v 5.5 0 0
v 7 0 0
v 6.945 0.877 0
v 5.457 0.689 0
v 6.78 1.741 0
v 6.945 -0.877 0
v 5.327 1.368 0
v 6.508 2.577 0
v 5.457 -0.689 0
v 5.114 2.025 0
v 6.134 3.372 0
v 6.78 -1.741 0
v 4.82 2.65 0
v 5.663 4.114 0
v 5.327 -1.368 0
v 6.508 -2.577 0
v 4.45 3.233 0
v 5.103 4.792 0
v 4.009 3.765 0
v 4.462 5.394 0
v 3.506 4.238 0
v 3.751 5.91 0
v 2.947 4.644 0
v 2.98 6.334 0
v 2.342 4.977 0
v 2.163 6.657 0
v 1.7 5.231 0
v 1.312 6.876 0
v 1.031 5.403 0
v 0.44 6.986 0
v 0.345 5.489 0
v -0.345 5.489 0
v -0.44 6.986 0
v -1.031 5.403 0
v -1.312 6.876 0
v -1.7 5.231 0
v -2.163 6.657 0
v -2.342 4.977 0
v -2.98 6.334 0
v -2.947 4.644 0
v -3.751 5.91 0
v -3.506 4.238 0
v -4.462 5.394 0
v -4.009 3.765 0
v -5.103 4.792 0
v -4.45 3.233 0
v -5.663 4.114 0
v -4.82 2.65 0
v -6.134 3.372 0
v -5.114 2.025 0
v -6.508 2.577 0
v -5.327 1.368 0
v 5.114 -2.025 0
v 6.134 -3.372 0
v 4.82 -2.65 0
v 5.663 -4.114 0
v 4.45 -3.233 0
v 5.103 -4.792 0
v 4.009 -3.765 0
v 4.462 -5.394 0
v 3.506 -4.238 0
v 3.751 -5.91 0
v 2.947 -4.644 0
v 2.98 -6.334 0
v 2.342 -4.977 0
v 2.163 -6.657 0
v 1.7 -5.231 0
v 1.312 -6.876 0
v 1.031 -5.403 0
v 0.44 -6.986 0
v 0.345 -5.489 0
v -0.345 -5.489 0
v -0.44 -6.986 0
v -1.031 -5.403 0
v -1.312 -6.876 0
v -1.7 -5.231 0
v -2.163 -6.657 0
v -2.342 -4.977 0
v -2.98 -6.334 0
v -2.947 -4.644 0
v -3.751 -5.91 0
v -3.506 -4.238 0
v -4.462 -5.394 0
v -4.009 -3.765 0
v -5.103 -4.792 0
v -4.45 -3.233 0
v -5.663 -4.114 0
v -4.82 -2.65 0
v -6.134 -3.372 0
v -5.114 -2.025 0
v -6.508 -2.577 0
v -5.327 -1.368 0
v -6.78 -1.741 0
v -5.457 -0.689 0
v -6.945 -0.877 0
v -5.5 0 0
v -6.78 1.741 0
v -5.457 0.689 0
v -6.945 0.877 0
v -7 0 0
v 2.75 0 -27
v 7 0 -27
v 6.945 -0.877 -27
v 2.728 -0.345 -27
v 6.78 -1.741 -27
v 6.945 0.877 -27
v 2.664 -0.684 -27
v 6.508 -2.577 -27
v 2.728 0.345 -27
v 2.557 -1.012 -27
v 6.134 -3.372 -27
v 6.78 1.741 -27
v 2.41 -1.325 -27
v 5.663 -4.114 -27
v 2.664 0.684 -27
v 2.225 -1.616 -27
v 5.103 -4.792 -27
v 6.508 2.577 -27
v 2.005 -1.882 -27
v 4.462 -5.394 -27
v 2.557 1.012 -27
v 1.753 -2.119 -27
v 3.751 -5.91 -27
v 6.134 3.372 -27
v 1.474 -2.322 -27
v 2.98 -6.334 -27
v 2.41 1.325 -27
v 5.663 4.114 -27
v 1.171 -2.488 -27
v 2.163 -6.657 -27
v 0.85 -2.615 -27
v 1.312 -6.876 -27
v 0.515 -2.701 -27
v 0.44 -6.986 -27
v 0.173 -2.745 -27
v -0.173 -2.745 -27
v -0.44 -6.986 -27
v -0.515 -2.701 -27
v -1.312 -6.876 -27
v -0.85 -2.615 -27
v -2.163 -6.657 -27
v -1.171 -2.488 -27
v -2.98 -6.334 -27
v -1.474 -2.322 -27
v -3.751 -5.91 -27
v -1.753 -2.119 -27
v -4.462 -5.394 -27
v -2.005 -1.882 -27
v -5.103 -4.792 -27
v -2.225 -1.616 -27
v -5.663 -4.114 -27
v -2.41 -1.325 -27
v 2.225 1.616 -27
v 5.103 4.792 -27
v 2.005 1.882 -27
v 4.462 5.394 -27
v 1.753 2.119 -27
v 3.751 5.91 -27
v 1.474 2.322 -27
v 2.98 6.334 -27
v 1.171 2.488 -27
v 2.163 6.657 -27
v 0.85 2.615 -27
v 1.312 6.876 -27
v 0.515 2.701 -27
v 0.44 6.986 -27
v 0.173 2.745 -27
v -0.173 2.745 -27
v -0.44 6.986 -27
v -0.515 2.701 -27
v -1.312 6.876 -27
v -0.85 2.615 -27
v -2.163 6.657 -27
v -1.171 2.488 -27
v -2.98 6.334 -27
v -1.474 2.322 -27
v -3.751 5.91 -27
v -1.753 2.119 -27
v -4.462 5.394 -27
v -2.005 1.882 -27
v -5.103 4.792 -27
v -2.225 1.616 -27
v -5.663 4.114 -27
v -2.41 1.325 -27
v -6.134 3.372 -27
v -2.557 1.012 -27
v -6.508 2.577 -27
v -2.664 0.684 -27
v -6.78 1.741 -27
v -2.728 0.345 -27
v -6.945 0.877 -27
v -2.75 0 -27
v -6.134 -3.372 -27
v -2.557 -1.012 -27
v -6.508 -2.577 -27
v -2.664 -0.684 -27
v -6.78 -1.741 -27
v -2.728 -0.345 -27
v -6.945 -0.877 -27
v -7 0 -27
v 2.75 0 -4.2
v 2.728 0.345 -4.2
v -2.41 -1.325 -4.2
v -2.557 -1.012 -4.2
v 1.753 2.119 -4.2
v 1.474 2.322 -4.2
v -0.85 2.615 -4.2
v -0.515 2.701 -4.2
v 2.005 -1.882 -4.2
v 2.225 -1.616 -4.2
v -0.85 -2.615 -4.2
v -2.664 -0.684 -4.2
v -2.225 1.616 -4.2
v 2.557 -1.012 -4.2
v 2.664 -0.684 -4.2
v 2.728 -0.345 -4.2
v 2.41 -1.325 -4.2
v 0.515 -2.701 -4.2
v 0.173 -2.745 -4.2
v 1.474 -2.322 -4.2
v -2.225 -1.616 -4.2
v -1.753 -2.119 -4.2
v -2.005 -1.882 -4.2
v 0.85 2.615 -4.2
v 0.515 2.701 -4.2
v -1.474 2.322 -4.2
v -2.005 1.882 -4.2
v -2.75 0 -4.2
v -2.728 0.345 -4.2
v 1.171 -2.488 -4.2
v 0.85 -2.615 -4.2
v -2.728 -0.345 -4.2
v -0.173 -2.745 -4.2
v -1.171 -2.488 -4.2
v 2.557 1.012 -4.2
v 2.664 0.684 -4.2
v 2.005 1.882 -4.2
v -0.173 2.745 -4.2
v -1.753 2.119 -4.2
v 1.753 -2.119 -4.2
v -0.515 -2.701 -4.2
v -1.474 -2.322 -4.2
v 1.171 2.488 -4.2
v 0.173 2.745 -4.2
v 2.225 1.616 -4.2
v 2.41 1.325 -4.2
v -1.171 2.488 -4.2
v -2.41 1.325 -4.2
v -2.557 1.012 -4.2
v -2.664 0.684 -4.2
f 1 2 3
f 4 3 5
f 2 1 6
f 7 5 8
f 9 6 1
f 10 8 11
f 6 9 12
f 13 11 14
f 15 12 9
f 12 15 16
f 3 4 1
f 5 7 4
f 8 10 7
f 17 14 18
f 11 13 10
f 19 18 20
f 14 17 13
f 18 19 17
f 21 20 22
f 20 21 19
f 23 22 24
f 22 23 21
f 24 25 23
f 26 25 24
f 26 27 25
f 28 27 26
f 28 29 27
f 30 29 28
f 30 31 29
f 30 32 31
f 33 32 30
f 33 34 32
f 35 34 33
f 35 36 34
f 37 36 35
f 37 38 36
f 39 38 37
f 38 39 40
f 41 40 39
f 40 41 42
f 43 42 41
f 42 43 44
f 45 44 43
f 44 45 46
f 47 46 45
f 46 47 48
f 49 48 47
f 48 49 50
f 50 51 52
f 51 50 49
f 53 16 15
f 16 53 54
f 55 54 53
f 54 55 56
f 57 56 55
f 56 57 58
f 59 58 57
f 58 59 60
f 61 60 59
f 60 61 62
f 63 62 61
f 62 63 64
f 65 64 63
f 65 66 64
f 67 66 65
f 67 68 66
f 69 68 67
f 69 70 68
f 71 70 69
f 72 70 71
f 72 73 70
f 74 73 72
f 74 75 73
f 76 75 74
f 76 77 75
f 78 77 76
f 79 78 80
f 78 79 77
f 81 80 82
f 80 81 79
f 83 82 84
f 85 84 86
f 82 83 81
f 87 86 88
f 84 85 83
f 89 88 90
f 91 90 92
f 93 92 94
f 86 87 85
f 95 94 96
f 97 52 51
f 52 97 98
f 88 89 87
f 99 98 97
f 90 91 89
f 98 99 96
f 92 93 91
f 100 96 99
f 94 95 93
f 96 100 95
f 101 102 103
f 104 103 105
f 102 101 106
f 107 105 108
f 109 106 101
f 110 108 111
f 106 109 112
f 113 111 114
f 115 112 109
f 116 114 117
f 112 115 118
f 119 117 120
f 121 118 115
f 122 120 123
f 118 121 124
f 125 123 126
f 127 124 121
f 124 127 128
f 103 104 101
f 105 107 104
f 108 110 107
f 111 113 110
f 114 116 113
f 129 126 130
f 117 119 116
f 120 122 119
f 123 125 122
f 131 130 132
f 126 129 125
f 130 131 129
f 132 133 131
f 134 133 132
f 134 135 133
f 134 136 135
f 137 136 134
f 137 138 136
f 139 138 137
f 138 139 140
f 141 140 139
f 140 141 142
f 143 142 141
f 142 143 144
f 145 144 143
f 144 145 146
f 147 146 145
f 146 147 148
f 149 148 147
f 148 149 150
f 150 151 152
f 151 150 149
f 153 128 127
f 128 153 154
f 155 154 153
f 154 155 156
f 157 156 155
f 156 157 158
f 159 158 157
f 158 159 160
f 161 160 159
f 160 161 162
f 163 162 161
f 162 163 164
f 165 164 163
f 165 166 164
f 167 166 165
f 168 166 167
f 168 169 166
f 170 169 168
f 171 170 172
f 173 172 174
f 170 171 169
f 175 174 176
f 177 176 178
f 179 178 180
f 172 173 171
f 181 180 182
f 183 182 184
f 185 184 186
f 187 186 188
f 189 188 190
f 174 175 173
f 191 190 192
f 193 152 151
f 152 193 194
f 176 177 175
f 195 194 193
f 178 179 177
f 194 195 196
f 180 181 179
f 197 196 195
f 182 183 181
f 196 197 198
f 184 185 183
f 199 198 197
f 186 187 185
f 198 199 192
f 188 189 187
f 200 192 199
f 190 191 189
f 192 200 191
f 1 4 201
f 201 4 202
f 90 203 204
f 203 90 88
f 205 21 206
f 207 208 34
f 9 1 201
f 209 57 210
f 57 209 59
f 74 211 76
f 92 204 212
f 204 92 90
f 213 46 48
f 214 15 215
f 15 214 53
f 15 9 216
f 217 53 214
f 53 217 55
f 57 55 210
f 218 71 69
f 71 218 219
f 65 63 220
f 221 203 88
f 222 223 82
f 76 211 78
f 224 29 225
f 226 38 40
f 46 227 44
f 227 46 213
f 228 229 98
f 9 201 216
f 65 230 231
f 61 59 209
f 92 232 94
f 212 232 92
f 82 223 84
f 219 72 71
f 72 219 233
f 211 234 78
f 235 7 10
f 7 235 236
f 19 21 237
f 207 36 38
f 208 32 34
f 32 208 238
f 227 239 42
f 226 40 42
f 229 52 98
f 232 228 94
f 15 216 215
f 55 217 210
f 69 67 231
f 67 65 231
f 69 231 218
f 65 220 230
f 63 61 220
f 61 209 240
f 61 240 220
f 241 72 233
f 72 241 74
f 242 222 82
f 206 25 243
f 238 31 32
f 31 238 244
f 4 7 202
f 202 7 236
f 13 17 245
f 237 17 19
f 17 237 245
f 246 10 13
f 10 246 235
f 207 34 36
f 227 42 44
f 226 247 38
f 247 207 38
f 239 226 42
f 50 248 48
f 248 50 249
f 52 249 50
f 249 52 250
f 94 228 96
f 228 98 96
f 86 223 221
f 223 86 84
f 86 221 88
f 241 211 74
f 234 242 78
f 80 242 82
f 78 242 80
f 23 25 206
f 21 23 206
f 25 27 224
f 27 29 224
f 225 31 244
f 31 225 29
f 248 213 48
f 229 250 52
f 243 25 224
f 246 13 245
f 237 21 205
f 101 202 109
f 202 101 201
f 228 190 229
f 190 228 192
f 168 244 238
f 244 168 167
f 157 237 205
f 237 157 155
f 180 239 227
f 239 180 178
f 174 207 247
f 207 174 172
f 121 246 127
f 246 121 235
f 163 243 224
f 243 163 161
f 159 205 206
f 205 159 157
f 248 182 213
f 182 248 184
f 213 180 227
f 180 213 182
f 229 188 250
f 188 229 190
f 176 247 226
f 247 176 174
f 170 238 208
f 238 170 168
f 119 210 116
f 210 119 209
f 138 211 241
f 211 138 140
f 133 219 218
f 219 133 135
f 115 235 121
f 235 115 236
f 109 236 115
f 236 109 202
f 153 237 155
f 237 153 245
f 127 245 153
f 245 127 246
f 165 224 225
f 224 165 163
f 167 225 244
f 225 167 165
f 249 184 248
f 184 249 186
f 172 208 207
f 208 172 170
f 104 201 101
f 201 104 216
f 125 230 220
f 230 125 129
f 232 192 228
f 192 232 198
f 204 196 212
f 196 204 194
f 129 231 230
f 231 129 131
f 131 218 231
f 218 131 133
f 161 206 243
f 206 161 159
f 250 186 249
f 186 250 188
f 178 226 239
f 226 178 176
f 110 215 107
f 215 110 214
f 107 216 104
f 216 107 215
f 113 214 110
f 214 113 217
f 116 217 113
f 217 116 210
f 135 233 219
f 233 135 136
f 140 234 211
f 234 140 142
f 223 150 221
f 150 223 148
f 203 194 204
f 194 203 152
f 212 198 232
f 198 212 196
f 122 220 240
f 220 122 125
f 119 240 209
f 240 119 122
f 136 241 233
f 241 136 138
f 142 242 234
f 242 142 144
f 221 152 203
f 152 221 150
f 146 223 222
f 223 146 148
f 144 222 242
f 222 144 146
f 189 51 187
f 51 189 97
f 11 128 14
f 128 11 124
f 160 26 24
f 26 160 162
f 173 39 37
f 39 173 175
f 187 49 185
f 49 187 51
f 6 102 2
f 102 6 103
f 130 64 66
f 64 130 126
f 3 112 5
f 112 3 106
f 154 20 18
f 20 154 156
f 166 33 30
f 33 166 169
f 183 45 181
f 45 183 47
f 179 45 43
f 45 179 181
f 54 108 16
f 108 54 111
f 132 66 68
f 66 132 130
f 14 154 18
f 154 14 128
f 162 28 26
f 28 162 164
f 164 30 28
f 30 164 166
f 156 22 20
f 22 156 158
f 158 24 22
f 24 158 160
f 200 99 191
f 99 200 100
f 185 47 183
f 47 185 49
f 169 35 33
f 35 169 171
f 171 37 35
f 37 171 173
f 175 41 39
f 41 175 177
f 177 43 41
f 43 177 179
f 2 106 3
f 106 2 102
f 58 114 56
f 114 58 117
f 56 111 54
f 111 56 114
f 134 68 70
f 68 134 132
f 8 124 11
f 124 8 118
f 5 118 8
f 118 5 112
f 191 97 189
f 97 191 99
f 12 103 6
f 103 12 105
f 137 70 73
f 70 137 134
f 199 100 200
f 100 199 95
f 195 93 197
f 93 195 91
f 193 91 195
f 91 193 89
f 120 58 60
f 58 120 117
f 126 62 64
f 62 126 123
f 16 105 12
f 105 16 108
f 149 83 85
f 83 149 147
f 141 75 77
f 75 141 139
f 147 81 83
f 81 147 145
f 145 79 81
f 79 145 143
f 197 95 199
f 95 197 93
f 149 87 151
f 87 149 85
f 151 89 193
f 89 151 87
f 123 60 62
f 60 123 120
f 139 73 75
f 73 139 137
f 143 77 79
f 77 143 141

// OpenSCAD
$fn = 50;


difference() {
	union() {
		translate(v = [0, 0, -27.0000000000]) {
			cylinder(h = 27, r = 7.0000000000);
		}
		cylinder(h = 0, r = 10.0000000000);
	}
	union() {
		translate(v = [0, 0, 0]) {
			rotate(a = [0, 0, 0]) {
				difference() {
					union() {
						#translate(v = [0, 0, -27.0000000000]) {
							cylinder(h = 27, r = 2.2500000000);
						}
						#translate(v = [0, 0, -4.2000000000]) {
							cylinder(h = 4.2000000000, r = 7.0000000000, r1 = 2.7500000000, r2 = 5.5000000000);
						}
						#translate(v = [0, 0, -27.0000000000]) {
							cylinder(h = 27, r = 2.7500000000);
						}
						#translate(v = [0, 0, -27.0000000000]) {
							cylinder(h = 27, r = 2.2500000000);
						}
					}
					union();
				}
			}
		}
	}
}
